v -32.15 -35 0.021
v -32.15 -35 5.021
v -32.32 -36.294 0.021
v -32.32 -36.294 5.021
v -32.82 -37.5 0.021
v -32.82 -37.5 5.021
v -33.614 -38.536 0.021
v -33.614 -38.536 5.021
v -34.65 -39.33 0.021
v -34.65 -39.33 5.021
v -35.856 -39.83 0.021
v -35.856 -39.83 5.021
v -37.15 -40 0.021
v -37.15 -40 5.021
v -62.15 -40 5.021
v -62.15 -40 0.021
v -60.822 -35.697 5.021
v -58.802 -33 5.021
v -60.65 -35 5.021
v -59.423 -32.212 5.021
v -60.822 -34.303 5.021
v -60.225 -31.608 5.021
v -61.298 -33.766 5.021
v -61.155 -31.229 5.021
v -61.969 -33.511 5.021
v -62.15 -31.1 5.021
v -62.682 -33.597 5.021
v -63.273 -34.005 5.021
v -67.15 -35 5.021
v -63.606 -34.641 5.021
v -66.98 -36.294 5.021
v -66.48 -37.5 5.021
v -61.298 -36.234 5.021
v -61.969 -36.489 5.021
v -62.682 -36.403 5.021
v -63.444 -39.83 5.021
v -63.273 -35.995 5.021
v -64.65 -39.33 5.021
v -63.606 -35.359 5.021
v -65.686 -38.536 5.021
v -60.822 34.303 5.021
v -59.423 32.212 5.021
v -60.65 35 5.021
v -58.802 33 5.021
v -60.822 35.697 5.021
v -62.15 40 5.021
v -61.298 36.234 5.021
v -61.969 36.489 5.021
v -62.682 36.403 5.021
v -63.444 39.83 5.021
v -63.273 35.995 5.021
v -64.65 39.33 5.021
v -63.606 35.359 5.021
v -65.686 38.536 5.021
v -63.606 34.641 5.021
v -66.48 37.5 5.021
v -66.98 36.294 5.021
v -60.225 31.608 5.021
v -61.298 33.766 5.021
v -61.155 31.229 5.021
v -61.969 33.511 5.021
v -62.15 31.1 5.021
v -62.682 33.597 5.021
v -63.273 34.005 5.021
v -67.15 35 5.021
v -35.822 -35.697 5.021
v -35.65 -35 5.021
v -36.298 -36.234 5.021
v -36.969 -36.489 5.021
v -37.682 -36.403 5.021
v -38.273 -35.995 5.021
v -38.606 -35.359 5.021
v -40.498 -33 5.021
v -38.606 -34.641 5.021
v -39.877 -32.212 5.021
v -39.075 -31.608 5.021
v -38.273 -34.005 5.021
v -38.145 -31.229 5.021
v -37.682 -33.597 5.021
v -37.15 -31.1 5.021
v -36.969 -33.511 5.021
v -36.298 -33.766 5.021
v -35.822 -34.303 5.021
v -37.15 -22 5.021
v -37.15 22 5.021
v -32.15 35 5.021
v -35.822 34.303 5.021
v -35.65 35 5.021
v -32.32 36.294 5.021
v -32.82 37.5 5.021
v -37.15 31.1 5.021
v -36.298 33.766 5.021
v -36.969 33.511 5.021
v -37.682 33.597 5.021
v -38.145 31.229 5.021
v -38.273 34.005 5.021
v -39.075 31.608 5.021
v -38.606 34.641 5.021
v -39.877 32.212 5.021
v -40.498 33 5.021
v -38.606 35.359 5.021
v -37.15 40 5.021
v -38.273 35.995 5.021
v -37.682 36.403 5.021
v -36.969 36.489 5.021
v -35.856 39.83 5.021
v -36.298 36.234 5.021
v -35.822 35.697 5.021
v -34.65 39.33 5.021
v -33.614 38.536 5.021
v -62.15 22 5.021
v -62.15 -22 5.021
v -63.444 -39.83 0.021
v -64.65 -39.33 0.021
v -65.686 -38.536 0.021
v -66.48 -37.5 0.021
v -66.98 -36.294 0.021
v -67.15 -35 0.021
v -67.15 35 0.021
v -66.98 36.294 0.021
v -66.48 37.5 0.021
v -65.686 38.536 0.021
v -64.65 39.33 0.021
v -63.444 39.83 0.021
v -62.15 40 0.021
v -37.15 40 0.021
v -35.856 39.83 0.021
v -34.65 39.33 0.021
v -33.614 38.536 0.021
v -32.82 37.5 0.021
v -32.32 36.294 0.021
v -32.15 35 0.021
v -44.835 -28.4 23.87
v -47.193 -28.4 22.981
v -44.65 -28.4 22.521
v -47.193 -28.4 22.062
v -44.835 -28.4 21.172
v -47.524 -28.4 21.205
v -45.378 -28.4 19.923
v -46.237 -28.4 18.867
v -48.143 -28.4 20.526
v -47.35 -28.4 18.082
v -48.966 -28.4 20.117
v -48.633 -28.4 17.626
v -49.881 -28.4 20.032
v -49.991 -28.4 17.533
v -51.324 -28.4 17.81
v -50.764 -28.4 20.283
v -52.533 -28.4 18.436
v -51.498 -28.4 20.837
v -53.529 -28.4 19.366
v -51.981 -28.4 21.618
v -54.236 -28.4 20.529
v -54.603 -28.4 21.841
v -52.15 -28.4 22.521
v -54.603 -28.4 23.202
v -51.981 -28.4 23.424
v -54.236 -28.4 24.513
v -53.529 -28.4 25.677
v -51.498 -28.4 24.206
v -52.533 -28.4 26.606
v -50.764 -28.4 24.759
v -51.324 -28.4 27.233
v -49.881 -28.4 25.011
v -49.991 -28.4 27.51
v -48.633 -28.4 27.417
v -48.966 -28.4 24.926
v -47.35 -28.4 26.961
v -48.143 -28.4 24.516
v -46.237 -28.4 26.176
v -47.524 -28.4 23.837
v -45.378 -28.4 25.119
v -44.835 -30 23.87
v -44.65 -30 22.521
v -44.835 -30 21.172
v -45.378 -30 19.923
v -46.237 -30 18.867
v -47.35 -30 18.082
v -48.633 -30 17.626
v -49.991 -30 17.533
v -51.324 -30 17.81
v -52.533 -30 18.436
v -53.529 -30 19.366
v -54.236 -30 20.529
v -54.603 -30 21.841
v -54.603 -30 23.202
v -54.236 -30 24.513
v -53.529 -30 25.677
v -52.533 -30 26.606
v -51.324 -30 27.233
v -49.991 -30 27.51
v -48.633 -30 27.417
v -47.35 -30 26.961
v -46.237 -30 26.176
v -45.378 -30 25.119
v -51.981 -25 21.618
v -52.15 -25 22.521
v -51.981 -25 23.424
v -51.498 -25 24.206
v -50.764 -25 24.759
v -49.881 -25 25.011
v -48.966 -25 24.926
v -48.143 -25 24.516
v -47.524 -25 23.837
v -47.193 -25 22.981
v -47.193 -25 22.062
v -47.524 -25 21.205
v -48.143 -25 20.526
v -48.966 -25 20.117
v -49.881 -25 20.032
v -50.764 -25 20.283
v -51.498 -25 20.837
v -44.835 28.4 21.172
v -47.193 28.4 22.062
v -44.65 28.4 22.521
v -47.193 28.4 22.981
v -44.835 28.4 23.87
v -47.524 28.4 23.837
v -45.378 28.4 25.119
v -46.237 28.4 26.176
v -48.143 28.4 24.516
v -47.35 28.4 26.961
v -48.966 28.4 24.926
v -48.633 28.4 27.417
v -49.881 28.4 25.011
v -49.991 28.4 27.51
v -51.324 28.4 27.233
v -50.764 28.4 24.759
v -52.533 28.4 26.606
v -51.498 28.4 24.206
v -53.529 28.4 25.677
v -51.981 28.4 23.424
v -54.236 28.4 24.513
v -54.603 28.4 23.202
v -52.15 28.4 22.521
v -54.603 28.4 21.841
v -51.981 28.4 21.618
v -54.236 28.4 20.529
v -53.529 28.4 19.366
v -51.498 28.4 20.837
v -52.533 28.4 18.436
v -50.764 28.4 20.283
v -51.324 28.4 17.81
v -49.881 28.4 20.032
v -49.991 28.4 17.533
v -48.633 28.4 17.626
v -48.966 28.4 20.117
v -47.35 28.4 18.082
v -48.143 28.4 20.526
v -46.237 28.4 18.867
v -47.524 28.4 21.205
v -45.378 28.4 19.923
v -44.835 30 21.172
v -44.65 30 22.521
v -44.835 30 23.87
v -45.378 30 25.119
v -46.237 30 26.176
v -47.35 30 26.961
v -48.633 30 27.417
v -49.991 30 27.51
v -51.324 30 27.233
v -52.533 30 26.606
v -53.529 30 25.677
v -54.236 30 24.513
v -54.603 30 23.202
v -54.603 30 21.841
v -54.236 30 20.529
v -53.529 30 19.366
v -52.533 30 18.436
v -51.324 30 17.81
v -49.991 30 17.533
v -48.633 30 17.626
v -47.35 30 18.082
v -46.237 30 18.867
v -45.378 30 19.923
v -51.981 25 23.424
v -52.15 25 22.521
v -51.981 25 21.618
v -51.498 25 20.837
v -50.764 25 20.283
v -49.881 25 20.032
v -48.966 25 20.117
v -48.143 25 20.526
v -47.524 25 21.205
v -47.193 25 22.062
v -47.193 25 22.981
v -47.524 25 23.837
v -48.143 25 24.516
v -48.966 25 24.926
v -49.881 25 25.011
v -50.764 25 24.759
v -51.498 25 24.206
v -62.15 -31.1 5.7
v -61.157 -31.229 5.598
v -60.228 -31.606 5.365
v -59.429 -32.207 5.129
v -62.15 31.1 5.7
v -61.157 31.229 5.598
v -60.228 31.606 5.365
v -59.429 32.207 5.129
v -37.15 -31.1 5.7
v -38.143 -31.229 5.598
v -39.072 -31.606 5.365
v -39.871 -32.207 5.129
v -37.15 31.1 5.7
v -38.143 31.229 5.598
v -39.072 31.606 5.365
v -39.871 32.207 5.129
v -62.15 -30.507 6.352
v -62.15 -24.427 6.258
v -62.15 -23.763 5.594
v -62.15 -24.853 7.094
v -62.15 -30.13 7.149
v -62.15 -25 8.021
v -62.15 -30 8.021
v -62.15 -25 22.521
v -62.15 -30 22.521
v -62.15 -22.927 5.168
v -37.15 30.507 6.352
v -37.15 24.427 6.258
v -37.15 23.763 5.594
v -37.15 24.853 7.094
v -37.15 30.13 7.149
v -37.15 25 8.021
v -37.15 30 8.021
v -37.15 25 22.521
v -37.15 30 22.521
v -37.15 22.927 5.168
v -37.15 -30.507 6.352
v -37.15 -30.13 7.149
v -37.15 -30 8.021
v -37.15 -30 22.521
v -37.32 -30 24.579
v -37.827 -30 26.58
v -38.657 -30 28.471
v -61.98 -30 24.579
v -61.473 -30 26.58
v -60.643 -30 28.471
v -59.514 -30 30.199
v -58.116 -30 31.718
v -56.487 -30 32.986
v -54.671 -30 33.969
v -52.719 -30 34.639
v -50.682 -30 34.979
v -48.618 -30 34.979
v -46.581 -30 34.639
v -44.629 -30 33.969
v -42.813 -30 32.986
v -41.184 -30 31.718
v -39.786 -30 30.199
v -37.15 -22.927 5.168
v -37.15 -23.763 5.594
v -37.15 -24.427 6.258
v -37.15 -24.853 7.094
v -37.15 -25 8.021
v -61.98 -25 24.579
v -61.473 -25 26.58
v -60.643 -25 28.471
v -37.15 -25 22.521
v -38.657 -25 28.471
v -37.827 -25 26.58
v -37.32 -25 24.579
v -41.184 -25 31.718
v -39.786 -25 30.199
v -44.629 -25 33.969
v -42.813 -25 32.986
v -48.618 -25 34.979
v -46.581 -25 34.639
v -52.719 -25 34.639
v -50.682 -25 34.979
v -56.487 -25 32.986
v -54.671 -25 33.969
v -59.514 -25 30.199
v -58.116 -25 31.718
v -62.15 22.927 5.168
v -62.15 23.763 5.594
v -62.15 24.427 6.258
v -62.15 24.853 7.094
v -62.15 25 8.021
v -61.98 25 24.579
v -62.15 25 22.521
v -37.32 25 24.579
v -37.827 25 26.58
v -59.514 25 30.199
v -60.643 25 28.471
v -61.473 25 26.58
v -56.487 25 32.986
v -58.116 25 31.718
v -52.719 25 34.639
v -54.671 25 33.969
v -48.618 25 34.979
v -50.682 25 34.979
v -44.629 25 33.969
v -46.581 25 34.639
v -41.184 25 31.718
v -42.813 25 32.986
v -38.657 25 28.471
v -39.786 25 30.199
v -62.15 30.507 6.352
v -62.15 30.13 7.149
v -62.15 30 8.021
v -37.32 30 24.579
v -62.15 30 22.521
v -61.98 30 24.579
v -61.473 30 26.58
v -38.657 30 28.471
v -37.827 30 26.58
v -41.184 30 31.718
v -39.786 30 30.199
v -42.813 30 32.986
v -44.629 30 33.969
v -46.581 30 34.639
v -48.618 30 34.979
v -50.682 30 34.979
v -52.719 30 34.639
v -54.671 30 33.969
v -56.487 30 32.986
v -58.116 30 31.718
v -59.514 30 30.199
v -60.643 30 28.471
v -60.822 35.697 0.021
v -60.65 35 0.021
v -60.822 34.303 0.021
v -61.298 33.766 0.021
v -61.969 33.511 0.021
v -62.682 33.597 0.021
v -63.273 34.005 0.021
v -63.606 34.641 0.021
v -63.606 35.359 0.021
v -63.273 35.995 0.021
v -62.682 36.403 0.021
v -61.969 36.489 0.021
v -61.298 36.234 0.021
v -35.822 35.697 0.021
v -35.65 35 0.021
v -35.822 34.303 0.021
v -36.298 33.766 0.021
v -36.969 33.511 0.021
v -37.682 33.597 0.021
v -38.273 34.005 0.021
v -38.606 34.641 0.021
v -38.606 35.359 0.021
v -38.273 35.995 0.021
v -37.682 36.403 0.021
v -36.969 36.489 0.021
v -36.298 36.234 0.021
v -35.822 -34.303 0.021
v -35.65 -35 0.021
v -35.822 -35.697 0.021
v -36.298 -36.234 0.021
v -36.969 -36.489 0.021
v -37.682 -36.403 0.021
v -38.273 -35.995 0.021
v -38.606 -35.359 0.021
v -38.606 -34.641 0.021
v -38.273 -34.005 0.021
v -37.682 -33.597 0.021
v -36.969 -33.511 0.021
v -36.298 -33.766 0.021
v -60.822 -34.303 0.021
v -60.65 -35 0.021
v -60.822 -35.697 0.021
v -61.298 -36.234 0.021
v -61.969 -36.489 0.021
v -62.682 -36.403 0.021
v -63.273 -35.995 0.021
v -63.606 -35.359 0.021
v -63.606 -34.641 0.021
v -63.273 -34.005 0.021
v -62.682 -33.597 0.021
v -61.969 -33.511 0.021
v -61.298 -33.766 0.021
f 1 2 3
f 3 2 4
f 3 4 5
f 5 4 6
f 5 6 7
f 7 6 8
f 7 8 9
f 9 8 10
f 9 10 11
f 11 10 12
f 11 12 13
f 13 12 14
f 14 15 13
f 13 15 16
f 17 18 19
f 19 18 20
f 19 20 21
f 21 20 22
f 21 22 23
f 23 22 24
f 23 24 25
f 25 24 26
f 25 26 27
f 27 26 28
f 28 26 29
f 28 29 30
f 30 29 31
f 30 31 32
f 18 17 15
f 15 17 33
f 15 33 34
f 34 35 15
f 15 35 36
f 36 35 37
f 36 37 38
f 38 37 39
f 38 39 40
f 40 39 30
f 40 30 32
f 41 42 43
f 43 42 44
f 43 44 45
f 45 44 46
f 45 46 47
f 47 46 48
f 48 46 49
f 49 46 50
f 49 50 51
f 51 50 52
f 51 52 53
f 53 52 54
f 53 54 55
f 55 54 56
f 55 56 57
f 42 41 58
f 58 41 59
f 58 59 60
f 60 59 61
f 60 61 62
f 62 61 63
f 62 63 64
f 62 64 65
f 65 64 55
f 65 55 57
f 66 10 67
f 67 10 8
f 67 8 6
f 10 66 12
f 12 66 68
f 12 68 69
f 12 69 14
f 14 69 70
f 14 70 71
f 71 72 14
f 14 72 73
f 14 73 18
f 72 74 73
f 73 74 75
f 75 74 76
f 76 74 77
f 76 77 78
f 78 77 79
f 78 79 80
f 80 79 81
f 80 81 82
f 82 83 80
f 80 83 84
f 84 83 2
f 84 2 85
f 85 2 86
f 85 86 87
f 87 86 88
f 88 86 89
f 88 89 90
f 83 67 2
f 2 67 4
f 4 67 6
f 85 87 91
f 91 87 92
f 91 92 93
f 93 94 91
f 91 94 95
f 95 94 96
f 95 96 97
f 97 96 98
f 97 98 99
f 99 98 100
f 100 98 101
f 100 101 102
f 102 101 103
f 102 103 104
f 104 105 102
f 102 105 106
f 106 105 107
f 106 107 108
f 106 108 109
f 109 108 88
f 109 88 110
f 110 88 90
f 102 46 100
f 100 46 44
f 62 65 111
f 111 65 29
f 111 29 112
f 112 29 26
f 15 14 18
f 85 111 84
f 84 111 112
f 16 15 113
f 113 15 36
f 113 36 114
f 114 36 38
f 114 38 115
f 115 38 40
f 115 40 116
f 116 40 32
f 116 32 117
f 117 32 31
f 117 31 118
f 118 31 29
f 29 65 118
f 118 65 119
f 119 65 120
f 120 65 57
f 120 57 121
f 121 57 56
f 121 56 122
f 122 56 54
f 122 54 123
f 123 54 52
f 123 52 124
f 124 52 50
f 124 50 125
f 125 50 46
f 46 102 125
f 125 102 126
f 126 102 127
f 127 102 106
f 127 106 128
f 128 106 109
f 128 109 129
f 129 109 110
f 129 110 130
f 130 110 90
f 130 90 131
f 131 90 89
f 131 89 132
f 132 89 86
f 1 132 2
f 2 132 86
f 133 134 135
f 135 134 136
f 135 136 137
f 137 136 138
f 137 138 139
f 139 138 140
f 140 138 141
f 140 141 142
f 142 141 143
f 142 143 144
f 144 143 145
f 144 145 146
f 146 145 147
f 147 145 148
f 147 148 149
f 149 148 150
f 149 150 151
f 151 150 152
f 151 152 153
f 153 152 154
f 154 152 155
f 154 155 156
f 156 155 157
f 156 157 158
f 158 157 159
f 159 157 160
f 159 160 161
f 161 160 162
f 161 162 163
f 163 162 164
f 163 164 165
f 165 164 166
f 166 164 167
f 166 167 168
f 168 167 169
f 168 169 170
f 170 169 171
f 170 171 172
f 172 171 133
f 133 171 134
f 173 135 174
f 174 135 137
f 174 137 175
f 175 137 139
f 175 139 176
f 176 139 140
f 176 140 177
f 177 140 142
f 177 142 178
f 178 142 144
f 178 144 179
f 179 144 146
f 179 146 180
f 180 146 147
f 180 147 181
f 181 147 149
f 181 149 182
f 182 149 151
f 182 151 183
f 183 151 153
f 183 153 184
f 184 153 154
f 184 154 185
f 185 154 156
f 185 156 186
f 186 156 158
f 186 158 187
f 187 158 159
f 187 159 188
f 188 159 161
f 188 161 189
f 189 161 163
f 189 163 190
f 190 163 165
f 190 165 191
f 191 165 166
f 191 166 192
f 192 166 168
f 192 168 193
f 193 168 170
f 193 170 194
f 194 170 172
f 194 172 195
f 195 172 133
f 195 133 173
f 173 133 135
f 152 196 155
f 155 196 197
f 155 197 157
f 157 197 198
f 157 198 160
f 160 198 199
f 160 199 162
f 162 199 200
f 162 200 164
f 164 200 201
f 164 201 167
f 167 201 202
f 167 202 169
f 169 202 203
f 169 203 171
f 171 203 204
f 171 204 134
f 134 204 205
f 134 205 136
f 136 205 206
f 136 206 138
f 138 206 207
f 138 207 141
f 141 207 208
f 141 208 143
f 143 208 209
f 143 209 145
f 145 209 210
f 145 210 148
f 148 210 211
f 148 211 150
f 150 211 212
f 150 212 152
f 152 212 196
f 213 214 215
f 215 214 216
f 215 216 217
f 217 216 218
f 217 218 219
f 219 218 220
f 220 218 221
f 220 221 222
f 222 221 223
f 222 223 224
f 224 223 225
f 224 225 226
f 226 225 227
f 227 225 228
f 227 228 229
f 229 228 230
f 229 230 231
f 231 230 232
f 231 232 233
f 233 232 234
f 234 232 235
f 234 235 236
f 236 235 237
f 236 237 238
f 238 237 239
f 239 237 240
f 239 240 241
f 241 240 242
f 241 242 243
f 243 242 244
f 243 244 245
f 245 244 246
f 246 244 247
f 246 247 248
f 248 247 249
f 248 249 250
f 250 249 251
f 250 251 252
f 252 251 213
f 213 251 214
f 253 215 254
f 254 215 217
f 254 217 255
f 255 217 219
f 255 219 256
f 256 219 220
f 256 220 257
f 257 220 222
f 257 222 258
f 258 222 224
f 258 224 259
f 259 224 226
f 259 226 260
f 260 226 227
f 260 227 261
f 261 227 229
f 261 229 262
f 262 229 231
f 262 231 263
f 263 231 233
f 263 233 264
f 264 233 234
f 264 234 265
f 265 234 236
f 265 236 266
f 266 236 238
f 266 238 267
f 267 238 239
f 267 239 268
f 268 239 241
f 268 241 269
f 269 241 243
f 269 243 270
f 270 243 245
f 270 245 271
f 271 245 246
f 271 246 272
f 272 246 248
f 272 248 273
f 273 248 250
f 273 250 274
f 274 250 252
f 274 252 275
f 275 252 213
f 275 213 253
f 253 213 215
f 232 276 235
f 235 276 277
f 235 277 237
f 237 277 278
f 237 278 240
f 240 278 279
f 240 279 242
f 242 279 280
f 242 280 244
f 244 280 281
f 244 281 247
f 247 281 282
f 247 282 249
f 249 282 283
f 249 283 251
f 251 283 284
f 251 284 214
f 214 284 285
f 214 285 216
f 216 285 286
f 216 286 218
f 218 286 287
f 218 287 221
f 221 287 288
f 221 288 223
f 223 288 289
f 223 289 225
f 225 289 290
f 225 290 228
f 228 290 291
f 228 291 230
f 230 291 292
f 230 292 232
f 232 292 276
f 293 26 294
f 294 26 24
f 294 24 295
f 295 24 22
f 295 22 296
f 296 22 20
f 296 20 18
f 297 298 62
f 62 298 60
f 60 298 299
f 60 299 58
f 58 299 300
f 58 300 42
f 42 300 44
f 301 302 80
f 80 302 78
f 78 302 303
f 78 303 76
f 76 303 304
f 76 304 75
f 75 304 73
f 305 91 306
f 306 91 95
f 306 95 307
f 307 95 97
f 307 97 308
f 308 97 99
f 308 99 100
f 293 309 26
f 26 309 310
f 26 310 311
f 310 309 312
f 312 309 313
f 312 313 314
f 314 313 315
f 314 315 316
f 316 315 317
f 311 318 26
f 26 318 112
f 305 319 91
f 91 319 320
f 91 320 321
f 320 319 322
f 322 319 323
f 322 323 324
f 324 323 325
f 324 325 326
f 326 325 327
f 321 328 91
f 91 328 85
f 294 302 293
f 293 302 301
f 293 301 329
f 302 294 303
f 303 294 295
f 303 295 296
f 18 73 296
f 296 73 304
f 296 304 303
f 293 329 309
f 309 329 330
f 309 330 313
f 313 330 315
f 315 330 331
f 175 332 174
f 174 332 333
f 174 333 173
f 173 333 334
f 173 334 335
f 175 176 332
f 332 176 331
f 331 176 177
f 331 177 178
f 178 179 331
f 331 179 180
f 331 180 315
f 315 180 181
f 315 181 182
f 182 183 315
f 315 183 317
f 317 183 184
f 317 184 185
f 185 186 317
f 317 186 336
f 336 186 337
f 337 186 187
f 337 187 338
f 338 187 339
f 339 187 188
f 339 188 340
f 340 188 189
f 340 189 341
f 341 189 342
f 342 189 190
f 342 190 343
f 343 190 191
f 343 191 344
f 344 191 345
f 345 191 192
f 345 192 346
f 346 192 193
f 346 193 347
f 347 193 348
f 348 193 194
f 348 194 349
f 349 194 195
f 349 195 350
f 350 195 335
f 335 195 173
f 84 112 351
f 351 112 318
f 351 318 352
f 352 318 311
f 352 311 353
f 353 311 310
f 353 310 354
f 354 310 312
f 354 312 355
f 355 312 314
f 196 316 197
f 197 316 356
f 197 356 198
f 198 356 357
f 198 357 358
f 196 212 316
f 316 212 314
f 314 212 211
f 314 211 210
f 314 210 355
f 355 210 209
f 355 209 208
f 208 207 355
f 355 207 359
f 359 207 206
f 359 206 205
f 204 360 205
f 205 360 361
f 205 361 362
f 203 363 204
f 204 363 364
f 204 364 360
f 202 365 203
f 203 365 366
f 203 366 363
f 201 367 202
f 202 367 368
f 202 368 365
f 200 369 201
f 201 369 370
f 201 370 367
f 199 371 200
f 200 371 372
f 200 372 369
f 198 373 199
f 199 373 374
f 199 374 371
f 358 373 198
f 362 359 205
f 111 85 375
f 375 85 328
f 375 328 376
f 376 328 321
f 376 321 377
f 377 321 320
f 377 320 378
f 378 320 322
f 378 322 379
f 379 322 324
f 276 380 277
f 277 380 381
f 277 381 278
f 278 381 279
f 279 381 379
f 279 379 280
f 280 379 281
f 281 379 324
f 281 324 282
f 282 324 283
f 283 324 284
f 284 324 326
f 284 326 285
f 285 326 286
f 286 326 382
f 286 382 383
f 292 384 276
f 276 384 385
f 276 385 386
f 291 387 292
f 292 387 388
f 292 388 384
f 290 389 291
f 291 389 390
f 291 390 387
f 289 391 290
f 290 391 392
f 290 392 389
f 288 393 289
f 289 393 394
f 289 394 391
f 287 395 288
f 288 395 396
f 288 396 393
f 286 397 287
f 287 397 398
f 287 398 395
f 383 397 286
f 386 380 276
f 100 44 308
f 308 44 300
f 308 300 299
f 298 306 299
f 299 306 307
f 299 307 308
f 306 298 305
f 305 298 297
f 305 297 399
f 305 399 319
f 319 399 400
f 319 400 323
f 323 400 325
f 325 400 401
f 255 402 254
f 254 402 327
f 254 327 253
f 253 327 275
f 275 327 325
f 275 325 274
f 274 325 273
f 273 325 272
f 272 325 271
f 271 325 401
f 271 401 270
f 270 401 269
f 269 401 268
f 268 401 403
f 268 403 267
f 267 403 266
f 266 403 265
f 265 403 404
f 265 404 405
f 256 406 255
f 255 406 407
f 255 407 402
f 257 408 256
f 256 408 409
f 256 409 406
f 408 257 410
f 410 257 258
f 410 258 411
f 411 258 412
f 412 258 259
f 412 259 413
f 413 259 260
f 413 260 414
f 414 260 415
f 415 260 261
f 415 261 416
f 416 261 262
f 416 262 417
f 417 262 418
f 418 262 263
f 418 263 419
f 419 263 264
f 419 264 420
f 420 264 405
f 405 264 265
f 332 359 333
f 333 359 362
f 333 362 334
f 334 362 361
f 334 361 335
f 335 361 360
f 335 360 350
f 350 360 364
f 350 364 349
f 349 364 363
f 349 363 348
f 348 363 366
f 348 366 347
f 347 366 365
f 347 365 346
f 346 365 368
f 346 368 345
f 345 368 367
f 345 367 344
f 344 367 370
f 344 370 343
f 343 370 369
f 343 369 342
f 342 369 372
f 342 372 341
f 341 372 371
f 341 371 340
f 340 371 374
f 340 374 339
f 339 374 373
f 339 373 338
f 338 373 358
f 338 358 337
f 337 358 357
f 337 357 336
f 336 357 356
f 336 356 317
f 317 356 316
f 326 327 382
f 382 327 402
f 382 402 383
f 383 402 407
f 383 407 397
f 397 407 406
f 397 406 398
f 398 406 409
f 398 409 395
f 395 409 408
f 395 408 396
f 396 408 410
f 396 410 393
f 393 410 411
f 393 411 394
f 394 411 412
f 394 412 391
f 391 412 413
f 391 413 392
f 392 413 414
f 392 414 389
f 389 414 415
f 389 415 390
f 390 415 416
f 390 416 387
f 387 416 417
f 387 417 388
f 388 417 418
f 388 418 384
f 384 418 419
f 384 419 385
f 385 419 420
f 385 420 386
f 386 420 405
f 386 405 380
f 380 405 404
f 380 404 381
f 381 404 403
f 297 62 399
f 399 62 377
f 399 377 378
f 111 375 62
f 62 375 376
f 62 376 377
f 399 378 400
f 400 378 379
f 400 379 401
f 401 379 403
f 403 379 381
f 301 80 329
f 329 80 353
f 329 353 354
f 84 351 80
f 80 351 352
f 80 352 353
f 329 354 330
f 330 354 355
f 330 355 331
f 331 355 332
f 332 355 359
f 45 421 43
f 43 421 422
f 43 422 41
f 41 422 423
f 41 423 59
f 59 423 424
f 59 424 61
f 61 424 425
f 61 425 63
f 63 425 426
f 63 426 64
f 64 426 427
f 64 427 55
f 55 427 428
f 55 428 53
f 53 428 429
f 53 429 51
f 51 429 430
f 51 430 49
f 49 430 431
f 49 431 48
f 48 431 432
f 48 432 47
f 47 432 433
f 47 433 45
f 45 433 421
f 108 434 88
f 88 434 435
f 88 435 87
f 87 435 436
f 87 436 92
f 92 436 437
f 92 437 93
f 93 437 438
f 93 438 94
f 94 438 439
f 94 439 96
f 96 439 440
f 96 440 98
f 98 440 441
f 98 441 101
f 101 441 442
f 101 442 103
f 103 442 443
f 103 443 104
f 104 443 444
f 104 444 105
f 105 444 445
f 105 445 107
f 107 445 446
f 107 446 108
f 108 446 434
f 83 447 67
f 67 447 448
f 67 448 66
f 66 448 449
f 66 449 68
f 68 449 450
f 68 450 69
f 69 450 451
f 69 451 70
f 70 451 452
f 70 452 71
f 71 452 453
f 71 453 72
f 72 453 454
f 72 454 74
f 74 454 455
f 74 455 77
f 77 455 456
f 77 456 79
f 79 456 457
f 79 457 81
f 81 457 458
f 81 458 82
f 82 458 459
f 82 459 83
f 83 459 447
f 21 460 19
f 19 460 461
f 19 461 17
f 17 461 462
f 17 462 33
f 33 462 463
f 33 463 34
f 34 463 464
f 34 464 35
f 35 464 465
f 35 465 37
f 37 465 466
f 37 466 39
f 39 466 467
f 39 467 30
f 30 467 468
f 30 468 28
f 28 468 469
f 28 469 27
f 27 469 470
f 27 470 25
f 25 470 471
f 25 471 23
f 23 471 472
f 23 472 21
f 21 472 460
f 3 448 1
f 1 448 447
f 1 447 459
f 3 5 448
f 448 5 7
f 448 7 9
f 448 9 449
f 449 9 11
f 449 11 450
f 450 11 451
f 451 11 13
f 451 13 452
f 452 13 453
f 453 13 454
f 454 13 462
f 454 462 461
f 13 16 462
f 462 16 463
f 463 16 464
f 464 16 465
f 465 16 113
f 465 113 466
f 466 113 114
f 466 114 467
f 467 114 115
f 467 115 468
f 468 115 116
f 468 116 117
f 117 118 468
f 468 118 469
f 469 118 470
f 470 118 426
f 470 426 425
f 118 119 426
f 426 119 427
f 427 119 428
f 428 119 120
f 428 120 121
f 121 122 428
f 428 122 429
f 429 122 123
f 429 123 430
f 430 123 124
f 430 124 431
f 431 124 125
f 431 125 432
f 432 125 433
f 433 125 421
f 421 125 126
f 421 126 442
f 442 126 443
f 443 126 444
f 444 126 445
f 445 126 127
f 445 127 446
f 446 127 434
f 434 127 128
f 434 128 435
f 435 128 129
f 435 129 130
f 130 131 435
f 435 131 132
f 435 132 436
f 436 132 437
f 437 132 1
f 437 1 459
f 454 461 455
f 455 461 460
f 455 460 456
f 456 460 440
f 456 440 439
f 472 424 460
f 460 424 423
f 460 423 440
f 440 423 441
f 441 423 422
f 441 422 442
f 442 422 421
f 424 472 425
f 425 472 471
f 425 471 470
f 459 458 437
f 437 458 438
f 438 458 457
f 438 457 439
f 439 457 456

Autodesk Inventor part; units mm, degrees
ref_plane "YZ Plane" through (0, 0, 0) normal (1, 0, 0) x (0, 1, 0)
ref_plane "XZ Plane" through (0, 0, 0) normal (0, 1, 0) x (-1, 0, 0)
ref_plane "XY Plane" through (0, 0, 0) normal (0, 0, 1) x (1, 0, 0)
sketch "Boceto1" plane through (0, 0, 0) normal (0, 0, 1) x (1, 0, 0)
  line L0 (75.85, 9) -> (75.85, -9) projected
  line L1 (75.85, 9) -> (95.85, 9) projected
  line L2 (95.85, -9) -> (95.85, 9) projected
  line L3 (105.85, -146.9) -> (105.85, 146.9) projected
  line L4 (105.85, 146.9) -> (112.15, 146.9) projected
  line L5 (112.15, 146.9) -> (112.15, 160) projected
  line L6 (112.15, 160) -> (105.85, 160) projected
  line L7 (105.85, 160) -> (105.85, 180) projected
  line L8 (105.85, 180) -> (-100.9, 180) projected
  line L9 (-100.9, 180) -> (-100.9, 160) projected
  line L10 (-100.9, 160) -> (-108.4, 160) projected
  line L11 (-108.4, 160) -> (-108.4, 145) projected
  line L12 (-108.4, 145) -> (-100.9, 145) projected
  line L13 (-100.9, 145) -> (-100.9, 142) projected
  line L14 (-100.9, 142) -> (-112.15, 142) projected
  line L15 (-112.15, 142) -> (-112.15, -142) projected
  line L16 (15.85, 9) -> (15.85, -9) projected
  line L17 (15.85, 9) -> (35.85, 9) projected
  line L18 (35.85, -9) -> (35.85, 9) projected
  line L19 (20.45, 169.8) -> (20.45, 163.3) projected
  line L20 (20.45, 163.3) -> (13.95, 163.3) projected
  line L21 (13.95, 163.3) -> (13.95, 169.8) projected
  line L22 (13.95, 169.8) -> (20.45, 169.8) projected
  line L23 (78.15, 169.8) -> (78.15, 163.3) projected
  line L24 (78.15, 163.3) -> (71.65, 163.3) projected
  line L25 (71.65, 163.3) -> (71.65, 169.8) projected
  line L26 (71.65, 169.8) -> (78.15, 169.8) projected
  line L27 (-4.15, 163.3) -> (-4.15, 169.8) projected
  line L28 (-4.15, 169.8) -> (2.35, 169.8) projected
  line L29 (2.35, 169.8) -> (2.35, 163.3) projected
  line L30 (2.35, 163.3) -> (-4.15, 163.3) projected
  line L31 (38.55, 169.8) -> (38.55, 163.3) projected
  line L32 (38.55, 163.3) -> (32.05, 163.3) projected
  line L33 (32.05, 163.3) -> (32.05, 169.8) projected
  line L34 (32.05, 169.8) -> (38.55, 169.8) projected
  line L35 (56.65, 169.8) -> (56.65, 163.3) projected
  line L36 (56.65, 163.3) -> (50.15, 163.3) projected
  line L37 (50.15, 163.3) -> (50.15, 169.8) projected
  line L38 (50.15, 169.8) -> (56.65, 169.8) projected
  line L39 (-14.65, 175.8) -> (-14.65, 157.7) projected
  line L40 (-14.65, 157.7) -> (-22.65, 157.7) projected
  line L41 (-22.65, 157.7) -> (-22.65, 175.8) projected
  line L42 (-22.65, 175.8) -> (-14.65, 175.8) projected
  line L43 (35.85, -9) -> (35.85, 9) projected
  line L44 (35.85, -9) -> (15.85, -9) projected
  line L45 (15.85, 9) -> (15.85, -9) projected
  line L46 (-112.15, 142) -> (-112.15, -142) projected
  line L47 (-112.15, -142) -> (-100.9, -142) projected
  line L48 (-100.9, -142) -> (-100.9, -145) projected
  line L49 (-100.9, -145) -> (-108.4, -145) projected
  line L50 (-108.4, -145) -> (-108.4, -160) projected
  line L51 (-108.4, -160) -> (-100.9, -160) projected
  line L52 (-100.9, -160) -> (-100.9, -180) projected
  line L53 (-100.9, -180) -> (105.85, -180) projected
  line L54 (105.85, -180) -> (105.85, -160) projected
  line L55 (105.85, -160) -> (112.15, -160) projected
  line L56 (112.15, -160) -> (112.15, -146.9) projected
  line L57 (112.15, -146.9) -> (105.85, -146.9) projected
  line L58 (105.85, -146.9) -> (105.85, 146.9) projected
  line L59 (95.85, -9) -> (95.85, 9) projected
  line L60 (95.85, -9) -> (75.85, -9) projected
  line L61 (75.85, 9) -> (75.85, -9) projected
  circle A0 centre (-103.8, -156.7) radius 1.5 projected
  line L62 (-25.85, -52.4) -> (-25.85, -57.4) projected
  line L63 (-25.85, -57.4) -> (-8.15, -57.4) projected
  arc A1 (-3.15, -62.4) -> (-8.15, -57.4) centre (-8.15, -62.4) ccw projected
  line L64 (-3.15, -62.4) -> (-3.15, -87.4) projected
  line L65 (-3.15, -87.4) -> (-2.05, -87.4) projected
  line L66 (-2.05, -87.4) -> (-2.05, -107.4) projected
  line L67 (-2.05, -107.4) -> (-3.15, -107.4) projected
  line L68 (-3.15, -107.4) -> (-3.15, -169.7804) projected
  arc A2 (-8.15, -174.7804) -> (-3.15, -169.7804) centre (-8.15, -169.7804) ccw projected
  line L69 (-8.15, -174.7804) -> (-67.5256, -174.7804) projected
  line L70 (-67.5256, -174.7804) -> (-67.5256, -57.4) projected
  line L71 (-67.5256, -57.4) -> (-48.05, -57.4) projected
  line L72 (-48.05, -57.4) -> (-48.05, -52.4) projected
  line L73 (-48.05, -52.4) -> (-25.85, -52.4) projected
  line L74 (-112.15, 0) -> (-67.15, 0)
  line L75 (-67.15, 0) -> (-67.15, -40)
  line L76 (-67.15, -40) -> (-32.15, -40)
  line L77 (-32.15, -40) -> (-32.15, 40)
  line L78 (-32.15, 40) -> (-67.15, 40)
  line L79 (-67.15, 40) -> (-67.15, 0)
  line L80 (-37.15, 35) -> (-37.15, -35)
  line L81 (-37.15, -35) -> (-62.15, -35)
  line L82 (-62.15, -35) -> (-62.15, 0)
  line L83 (-62.15, 0) -> (-62.15, 35)
  line L84 (-62.15, 35) -> (-37.15, 35)
  circle A3 centre (-37.15, 35) radius 1.5
  circle A4 centre (-37.15, -35) radius 1.5
  circle A5 centre (-62.15, -35) radius 1.5
  circle A6 centre (-62.15, 35) radius 1.5
  circle A7 centre (-37.15, -35) radius 1.6 projected
  circle A8 centre (-37.15, 35) radius 1.6 projected
  circle A9 centre (-62.15, 35) radius 1.6 projected
  circle A10 centre (-62.15, -35) radius 1.6 projected
  line L85 (75.85, 9) -> (95.85, 9) projected
  line L86 (15.85, 9) -> (35.85, 9) projected
  line L87 (20.45, 169.8) -> (20.45, 163.3) projected
  line L88 (20.45, 163.3) -> (13.95, 163.3) projected
  line L89 (13.95, 163.3) -> (13.95, 169.8) projected
  line L90 (13.95, 169.8) -> (20.45, 169.8) projected
  line L91 (78.15, 169.8) -> (78.15, 163.3) projected
  line L92 (78.15, 163.3) -> (71.65, 163.3) projected
  line L93 (71.65, 163.3) -> (71.65, 169.8) projected
  line L94 (71.65, 169.8) -> (78.15, 169.8) projected
  line L95 (-4.15, 163.3) -> (-4.15, 169.8) projected
  line L96 (-4.15, 169.8) -> (2.35, 169.8) projected
  line L97 (2.35, 169.8) -> (2.35, 163.3) projected
  line L98 (2.35, 163.3) -> (-4.15, 163.3) projected
  line L99 (38.55, 169.8) -> (38.55, 163.3) projected
  line L100 (38.55, 163.3) -> (32.05, 163.3) projected
  line L101 (32.05, 163.3) -> (32.05, 169.8) projected
  line L102 (32.05, 169.8) -> (38.55, 169.8) projected
  line L103 (56.65, 169.8) -> (56.65, 163.3) projected
  line L104 (56.65, 163.3) -> (50.15, 163.3) projected
  line L105 (50.15, 163.3) -> (50.15, 169.8) projected
  line L106 (50.15, 169.8) -> (56.65, 169.8) projected
  line L107 (-14.65, 175.8) -> (-14.65, 157.7) projected
  line L108 (-14.65, 157.7) -> (-22.65, 157.7) projected
  line L109 (-22.65, 157.7) -> (-22.65, 175.8) projected
  line L110 (-22.65, 175.8) -> (-14.65, 175.8) projected
  line L111 (-100.9, 142) -> (-112.15, 142) projected
  line L112 (105.85, 146.9) -> (112.15, 146.9) projected
  line L113 (112.15, 146.9) -> (112.15, 160) projected
  line L114 (112.15, 160) -> (105.85, 160) projected
  line L115 (105.85, 160) -> (105.85, 180) projected
  line L116 (105.85, 180) -> (-100.9, 180) projected
  line L117 (-100.9, 180) -> (-100.9, 160) projected
  line L118 (-100.9, 160) -> (-108.4, 160) projected
  line L119 (-108.4, 160) -> (-108.4, 145) projected
  line L120 (-108.4, 145) -> (-100.9, 145) projected
  line L121 (-100.9, 145) -> (-100.9, 142) projected
  circle A11 centre (-37.15, -35) radius 1.6 projected
  circle A12 centre (-37.15, 35) radius 1.6 projected
  circle A13 centre (-62.15, 35) radius 1.6 projected
  circle A14 centre (-62.15, -35) radius 1.6 projected
  line L122 (95.85, -9) -> (75.85, -9) projected
  line L123 (35.85, -9) -> (15.85, -9) projected
  line L124 (-25.85, -52.4) -> (-25.85, -57.4) projected
  line L125 (-25.85, -57.4) -> (-8.15, -57.4) projected
  arc A15 (-3.15, -62.4) -> (-8.15, -57.4) centre (-8.15, -62.4) ccw projected
  line L126 (-3.15, -62.4) -> (-3.15, -87.4) projected
  line L127 (-3.15, -87.4) -> (-2.05, -87.4) projected
  line L128 (-2.05, -87.4) -> (-2.05, -107.4) projected
  line L129 (-2.05, -107.4) -> (-3.15, -107.4) projected
  line L130 (-3.15, -107.4) -> (-3.15, -169.7804) projected
  arc A16 (-8.15, -174.7804) -> (-3.15, -169.7804) centre (-8.15, -169.7804) ccw projected
  line L131 (-8.15, -174.7804) -> (-67.5256, -174.7804) projected
  line L132 (-67.5256, -174.7804) -> (-67.5256, -57.4) projected
  line L133 (-67.5256, -57.4) -> (-48.05, -57.4) projected
  line L134 (-48.05, -57.4) -> (-48.05, -52.4) projected
  line L135 (-48.05, -52.4) -> (-25.85, -52.4) projected
  circle A17 centre (-103.8, -156.7) radius 1.5 projected
  line L136 (-112.15, -142) -> (-100.9, -142) projected
  line L137 (-100.9, -142) -> (-100.9, -145) projected
  line L138 (-100.9, -145) -> (-108.4, -145) projected
  line L139 (-108.4, -145) -> (-108.4, -160) projected
  line L140 (-108.4, -160) -> (-100.9, -160) projected
  line L141 (-100.9, -160) -> (-100.9, -180) projected
  line L142 (-100.9, -180) -> (105.85, -180) projected
  line L143 (105.85, -180) -> (105.85, -160) projected
  line L144 (105.85, -160) -> (112.15, -160) projected
  line L145 (112.15, -160) -> (112.15, -146.9) projected
  line L146 (112.15, -146.9) -> (105.85, -146.9) projected
  dimension "d0" = 45
  dimension "d1" = 40
  dimension "d2" = 35
  dimension "d3" = 80
  dimension "d4" = 5
  dimension "d5" = 3
  dimension "d6" = 3
  dimension "d7" = 3
  dimension "d8" = 3
extrude "Extrusión1" add sketch "Boceto1" along normal blind 5 contours L79 L78 L77 L76 L75 | A3 L84 A8 L80 | L80 A8 L84 A3 | L80 A7 L81 A10 L82 L83 A9 L84 A8 | A7 L81 A4 L80 | L80 A4 L81 A7 | A9 L83 A6 L84 | L84 A6 L83 A9 | A10 L82 A5 L81 | L81 A5 L82 A10
sketch "Boceto2" plane through (0, 0, 5) normal (0, 0, 1) x (1, 0, 0)
  circle A0 centre (-37.15, 35) radius 1.5 projected
  circle A1 centre (-62.15, -35) radius 1.5 projected
  line L0 (-37.15, 35) -> (-62.15, 35)
  line L1 (-62.15, 35) -> (-62.15, -35)
  line L2 (-62.15, -35) -> (-37.15, -35)
  line L3 (-37.15, -35) -> (-37.15, 35)
  line L4 (-50.6099, 35) -> (-50.6099, 30)
  line L5 (-37.15, 30) -> (-62.15, 30)
  line L6 (-37.15, 25) -> (-62.15, 25)
  line L7 (-49.65, -35) -> (-49.65, -30)
  line L8 (-49.65, -25) -> (-37.15, -25)
  line L9 (-49.65, -30) -> (-37.15, -30)
  line L10 (-49.65, -30) -> (-62.15, -30)
  line L11 (-62.15, -30) -> (-37.15, -30)
  line L12 (-37.15, -30) -> (-37.15, -25)
  line L13 (-37.15, -25) -> (-62.15, -25)
  line L14 (-62.15, -25) -> (-62.15, -30)
  point P0 (0, 0)
  dimension "d11" = 5
  dimension "d12" = 5
  dimension "d13" = 5
  dimension "d14" = 5
extrude "Extrusión2" add sketch "Boceto2" along normal blind 30 contours L3 L6 L1 L5 | L3 L9 L10 L1 L13 L8
fillet "Empalme1" radius 12.5 4 edges at (-37.15, 27.5, 35) (-62.15, 27.5, 35) (-37.15, -27.5, 35) (-62.15, -27.5, 35)
fillet "Empalme2" radius 3 4 edges at (-49.65, 30, 5) (-49.65, 25, 5) (-49.65, -25, 5) (-49.65, -30, 5)
sketch "Boceto3" plane through (0, 0, 5) normal (0, 0, 1) x (1, 0, 0)
  line L0 (-62.15, -33) -> (-62.15, -22) projected
  line L1 (-37.15, -22) -> (-62.15, -22) projected
  line L2 (-37.15, -22) -> (-37.15, -33) projected
  line L3 (-62.15, -33) -> (-37.15, -33) projected
  line L4 (-62.15, 22) -> (-62.15, 33) projected
  line L5 (-37.15, 33) -> (-62.15, 33) projected
  line L6 (-37.15, 33) -> (-37.15, 22) projected
  line L7 (-62.15, 22) -> (-37.15, 22) projected
  line L8 (-32.15, 40) -> (-67.15, 40) projected
  line L9 (-67.15, 40) -> (-67.15, -40) projected
  line L10 (-67.15, -40) -> (-32.15, -40) projected
  line L11 (-32.15, -40) -> (-32.15, 40) projected
  circle A0 centre (-62.15, -35) radius 1.5 projected
  circle A1 centre (-37.15, -35) radius 1.5 projected
  circle A2 centre (-37.15, 35) radius 1.5 projected
  circle A3 centre (-62.15, 35) radius 1.5 projected
  circle A4 centre (-62.15, 35) radius 3.9
  circle A5 centre (-37.15, 35) radius 3.9
  circle A6 centre (-62.15, -35) radius 1.5 projected
  circle A7 centre (-62.15, -35) radius 3.9
  circle A8 centre (-37.15, -35) radius 3.9
  point P0 (0, 0)
  dimension "d19" = 7.8
  dimension "d20" = 7.8
  dimension "d21" = 7.8
  dimension "d22" = 7.8
extrude "Extrusión3" cut sketch "Boceto3" along normal blind 30 contours L3 A7 L0 | L0 A7 L3 | A8 L2 L3 | L3 L2 A8 | A4 L5 L4 | L4 L5 A4 | A5 L5 L6 | L6 L5 A5
sketch "Boceto4" plane through (-49.65, 30, 22.5) normal (0, 1, 0) x (1, 0, 0)
  arc A0 (-12.5, 0) -> (12.5, 0) centre (0, 0) ccw projected
  point P0 (49.65, 22.5)
hole "Agujero1" at (-49.65, 30, 22.5) direction (0, -1, 0) diameter 5 depth 5 counterbore diameter 10 counterbore depth 1.6
sketch "Boceto5" plane through (-49.65, -30, 22.5) normal (0, -1, 0) x (1, 0, 0)
  arc A0 (12.5, 0) -> (-12.5, 0) centre (0, 0) ccw projected
  point P0 (49.65, -22.5)
hole "Agujero2" at (-49.65, -30, 22.5) direction (0, 1, 0) diameter 5 depth 5 counterbore diameter 10 counterbore depth 1.6
fillet "Empalme3" radius 5 4 edges at (-32.15, 40, 2.5) (-67.15, 40, 2.5) (-67.15, -40, 2.5) (-32.15, -40, 2.5)
properties part number "UnionBrazoPantalla"
